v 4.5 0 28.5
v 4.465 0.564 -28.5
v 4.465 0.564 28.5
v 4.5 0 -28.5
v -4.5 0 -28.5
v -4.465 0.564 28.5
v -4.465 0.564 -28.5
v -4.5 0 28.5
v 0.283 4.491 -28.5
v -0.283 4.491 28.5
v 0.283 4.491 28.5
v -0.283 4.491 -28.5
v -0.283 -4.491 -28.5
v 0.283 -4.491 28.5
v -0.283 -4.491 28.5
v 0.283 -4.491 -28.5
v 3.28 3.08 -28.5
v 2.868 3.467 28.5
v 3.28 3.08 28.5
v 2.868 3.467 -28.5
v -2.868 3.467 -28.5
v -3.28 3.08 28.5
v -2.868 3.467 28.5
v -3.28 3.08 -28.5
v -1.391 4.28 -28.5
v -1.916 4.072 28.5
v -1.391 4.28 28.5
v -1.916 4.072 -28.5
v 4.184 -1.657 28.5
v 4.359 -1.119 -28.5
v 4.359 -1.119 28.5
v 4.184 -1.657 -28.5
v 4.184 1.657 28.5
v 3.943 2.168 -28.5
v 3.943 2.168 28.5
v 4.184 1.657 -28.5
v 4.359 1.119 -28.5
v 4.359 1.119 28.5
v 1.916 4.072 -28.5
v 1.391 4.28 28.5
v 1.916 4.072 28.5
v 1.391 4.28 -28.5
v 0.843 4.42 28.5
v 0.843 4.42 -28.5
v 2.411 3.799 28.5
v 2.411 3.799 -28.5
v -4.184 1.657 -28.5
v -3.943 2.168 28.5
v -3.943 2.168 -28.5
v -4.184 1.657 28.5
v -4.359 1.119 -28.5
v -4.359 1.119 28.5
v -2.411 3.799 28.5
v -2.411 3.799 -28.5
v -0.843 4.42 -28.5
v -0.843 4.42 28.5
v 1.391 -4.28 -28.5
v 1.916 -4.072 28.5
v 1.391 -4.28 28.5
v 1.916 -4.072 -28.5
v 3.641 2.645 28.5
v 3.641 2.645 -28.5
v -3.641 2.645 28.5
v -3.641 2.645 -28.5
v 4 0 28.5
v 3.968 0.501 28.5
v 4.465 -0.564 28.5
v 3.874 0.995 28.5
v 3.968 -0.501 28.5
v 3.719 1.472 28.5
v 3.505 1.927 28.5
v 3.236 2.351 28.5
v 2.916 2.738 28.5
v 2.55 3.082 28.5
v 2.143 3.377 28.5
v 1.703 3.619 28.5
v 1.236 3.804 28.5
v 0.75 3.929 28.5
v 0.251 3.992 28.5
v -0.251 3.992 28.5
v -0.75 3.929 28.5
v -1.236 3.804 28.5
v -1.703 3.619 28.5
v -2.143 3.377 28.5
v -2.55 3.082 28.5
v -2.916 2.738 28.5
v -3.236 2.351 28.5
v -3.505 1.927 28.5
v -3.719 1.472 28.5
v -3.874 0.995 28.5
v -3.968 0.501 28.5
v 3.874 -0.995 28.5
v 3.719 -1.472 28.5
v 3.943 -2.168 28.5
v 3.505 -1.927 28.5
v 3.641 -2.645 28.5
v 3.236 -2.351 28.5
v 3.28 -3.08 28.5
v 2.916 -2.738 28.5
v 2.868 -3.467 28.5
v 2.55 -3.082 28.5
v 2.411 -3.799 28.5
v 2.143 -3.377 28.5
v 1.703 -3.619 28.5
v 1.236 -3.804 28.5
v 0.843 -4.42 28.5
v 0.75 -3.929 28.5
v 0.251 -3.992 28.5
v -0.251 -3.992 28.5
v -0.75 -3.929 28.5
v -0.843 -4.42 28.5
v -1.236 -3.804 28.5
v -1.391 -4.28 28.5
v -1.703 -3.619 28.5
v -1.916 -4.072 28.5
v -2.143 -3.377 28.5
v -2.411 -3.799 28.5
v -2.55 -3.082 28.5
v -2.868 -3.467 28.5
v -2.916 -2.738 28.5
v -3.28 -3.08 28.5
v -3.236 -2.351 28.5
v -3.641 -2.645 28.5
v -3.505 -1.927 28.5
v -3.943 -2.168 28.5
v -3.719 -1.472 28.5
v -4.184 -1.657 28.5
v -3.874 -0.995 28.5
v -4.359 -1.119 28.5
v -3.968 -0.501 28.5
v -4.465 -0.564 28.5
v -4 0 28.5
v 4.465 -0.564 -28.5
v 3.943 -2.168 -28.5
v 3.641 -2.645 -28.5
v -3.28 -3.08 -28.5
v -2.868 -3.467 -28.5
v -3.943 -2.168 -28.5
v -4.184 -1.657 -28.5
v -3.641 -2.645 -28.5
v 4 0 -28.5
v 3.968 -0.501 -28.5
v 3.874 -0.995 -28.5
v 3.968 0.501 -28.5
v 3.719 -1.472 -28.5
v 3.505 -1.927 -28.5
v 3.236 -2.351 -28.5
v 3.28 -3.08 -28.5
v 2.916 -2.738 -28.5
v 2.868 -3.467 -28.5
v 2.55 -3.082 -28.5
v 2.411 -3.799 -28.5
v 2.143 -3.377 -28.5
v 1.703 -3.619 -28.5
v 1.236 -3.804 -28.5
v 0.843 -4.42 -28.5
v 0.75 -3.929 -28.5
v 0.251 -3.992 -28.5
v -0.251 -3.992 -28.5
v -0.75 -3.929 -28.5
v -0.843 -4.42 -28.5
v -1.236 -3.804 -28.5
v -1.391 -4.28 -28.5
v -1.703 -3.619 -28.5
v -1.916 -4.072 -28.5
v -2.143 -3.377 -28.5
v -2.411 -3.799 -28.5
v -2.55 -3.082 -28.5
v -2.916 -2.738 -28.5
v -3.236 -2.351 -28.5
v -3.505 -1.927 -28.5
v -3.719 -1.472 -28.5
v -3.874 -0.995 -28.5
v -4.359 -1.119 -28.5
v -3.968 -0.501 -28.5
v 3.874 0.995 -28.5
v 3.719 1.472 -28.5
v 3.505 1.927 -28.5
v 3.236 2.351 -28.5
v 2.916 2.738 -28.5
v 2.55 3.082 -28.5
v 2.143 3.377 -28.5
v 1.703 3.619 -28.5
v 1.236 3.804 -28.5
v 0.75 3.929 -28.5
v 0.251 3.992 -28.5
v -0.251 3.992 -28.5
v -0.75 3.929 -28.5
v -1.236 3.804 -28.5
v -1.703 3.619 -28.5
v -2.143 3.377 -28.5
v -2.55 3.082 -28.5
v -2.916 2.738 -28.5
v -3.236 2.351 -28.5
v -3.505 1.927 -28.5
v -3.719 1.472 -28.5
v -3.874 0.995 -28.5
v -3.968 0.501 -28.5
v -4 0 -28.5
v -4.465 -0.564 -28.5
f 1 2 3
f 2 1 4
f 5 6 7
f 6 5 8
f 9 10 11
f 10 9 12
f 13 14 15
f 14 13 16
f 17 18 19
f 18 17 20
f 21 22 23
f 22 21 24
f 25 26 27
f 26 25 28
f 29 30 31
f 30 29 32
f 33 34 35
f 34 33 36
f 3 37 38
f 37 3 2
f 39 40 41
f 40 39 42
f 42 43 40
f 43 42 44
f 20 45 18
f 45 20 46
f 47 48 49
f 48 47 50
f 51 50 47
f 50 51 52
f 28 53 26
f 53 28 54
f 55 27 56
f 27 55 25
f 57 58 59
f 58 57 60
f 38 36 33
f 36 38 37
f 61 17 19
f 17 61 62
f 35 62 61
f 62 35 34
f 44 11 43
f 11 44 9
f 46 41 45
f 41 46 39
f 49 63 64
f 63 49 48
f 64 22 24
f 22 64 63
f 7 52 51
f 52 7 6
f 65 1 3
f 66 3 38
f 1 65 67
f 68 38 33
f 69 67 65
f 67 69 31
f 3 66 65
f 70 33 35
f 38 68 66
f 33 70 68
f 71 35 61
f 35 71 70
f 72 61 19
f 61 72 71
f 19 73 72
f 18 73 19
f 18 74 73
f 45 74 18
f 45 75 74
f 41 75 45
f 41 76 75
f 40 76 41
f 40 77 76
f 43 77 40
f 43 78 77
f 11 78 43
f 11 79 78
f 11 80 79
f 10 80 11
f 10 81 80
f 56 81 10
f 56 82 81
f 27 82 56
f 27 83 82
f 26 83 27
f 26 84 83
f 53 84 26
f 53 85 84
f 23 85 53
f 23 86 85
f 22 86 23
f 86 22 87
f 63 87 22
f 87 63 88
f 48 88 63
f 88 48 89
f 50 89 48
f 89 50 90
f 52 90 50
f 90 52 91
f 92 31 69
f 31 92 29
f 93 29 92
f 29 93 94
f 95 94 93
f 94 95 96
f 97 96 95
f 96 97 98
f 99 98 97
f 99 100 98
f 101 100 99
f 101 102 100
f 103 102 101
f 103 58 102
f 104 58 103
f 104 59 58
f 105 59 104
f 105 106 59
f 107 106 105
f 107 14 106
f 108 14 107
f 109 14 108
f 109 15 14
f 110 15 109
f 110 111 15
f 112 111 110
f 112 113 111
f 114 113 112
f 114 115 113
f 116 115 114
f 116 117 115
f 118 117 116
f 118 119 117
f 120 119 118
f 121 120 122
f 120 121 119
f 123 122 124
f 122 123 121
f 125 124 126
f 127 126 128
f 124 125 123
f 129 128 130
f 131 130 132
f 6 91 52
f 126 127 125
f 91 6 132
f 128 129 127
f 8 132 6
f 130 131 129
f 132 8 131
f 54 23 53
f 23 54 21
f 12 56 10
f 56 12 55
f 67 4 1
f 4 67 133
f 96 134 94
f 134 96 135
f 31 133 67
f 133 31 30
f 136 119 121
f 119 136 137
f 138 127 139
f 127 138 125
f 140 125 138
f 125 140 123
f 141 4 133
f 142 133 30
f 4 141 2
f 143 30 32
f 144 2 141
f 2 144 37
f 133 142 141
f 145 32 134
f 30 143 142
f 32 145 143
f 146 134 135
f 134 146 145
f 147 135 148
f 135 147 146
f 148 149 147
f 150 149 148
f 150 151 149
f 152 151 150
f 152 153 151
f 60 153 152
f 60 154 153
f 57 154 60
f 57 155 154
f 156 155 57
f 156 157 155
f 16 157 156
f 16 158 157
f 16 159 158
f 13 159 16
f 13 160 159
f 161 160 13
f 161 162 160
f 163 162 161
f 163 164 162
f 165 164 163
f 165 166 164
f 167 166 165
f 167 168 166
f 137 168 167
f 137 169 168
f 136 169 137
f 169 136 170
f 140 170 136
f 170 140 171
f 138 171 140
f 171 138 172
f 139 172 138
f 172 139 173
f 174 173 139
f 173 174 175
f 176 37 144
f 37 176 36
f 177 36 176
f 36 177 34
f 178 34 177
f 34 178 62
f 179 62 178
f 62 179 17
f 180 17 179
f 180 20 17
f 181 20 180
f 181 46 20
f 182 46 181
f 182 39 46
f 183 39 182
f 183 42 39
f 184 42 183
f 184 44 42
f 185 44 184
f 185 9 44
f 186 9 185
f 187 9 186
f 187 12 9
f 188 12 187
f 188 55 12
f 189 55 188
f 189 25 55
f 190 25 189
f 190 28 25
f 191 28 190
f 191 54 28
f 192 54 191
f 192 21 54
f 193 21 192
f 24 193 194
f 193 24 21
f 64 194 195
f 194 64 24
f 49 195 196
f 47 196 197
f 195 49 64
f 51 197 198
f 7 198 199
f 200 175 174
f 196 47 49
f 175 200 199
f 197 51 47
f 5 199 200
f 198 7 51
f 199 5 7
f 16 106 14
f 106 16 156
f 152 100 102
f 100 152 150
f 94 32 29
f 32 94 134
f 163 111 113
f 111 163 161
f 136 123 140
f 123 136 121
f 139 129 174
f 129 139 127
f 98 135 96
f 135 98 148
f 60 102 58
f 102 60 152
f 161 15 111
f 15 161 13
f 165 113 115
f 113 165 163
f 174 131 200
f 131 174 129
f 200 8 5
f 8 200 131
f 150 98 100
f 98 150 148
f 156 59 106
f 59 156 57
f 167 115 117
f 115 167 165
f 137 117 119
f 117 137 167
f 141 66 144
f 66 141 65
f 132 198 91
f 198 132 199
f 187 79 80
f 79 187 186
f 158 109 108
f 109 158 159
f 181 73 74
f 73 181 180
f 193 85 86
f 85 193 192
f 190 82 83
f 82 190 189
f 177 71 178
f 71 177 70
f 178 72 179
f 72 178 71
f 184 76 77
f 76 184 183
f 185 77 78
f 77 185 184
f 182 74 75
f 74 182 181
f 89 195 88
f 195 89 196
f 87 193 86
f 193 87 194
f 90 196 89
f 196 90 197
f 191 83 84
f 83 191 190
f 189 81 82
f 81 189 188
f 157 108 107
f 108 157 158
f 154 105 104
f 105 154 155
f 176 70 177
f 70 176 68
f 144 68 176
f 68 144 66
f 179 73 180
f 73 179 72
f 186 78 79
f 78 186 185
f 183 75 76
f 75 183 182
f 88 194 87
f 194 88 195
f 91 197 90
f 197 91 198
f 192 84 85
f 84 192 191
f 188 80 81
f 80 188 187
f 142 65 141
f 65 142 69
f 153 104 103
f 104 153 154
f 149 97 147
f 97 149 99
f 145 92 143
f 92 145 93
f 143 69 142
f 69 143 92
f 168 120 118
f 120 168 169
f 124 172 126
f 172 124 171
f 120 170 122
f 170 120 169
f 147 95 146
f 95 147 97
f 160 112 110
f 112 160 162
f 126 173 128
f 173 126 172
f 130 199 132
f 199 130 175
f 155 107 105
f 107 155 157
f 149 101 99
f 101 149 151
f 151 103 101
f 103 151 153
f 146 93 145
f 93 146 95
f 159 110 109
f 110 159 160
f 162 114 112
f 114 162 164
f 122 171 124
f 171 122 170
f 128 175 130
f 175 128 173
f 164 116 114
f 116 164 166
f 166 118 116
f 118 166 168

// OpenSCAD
$fn = 50;


difference() {
	union() {
		translate(v = [0, 0, -28.5000000000]) {
			cylinder(h = 57, r = 4.5000000000);
		}
	}
	union() {
		translate(v = [0, 0, -100.0000000000]) {
			cylinder(h = 200, r = 4);
		}
	}
}
